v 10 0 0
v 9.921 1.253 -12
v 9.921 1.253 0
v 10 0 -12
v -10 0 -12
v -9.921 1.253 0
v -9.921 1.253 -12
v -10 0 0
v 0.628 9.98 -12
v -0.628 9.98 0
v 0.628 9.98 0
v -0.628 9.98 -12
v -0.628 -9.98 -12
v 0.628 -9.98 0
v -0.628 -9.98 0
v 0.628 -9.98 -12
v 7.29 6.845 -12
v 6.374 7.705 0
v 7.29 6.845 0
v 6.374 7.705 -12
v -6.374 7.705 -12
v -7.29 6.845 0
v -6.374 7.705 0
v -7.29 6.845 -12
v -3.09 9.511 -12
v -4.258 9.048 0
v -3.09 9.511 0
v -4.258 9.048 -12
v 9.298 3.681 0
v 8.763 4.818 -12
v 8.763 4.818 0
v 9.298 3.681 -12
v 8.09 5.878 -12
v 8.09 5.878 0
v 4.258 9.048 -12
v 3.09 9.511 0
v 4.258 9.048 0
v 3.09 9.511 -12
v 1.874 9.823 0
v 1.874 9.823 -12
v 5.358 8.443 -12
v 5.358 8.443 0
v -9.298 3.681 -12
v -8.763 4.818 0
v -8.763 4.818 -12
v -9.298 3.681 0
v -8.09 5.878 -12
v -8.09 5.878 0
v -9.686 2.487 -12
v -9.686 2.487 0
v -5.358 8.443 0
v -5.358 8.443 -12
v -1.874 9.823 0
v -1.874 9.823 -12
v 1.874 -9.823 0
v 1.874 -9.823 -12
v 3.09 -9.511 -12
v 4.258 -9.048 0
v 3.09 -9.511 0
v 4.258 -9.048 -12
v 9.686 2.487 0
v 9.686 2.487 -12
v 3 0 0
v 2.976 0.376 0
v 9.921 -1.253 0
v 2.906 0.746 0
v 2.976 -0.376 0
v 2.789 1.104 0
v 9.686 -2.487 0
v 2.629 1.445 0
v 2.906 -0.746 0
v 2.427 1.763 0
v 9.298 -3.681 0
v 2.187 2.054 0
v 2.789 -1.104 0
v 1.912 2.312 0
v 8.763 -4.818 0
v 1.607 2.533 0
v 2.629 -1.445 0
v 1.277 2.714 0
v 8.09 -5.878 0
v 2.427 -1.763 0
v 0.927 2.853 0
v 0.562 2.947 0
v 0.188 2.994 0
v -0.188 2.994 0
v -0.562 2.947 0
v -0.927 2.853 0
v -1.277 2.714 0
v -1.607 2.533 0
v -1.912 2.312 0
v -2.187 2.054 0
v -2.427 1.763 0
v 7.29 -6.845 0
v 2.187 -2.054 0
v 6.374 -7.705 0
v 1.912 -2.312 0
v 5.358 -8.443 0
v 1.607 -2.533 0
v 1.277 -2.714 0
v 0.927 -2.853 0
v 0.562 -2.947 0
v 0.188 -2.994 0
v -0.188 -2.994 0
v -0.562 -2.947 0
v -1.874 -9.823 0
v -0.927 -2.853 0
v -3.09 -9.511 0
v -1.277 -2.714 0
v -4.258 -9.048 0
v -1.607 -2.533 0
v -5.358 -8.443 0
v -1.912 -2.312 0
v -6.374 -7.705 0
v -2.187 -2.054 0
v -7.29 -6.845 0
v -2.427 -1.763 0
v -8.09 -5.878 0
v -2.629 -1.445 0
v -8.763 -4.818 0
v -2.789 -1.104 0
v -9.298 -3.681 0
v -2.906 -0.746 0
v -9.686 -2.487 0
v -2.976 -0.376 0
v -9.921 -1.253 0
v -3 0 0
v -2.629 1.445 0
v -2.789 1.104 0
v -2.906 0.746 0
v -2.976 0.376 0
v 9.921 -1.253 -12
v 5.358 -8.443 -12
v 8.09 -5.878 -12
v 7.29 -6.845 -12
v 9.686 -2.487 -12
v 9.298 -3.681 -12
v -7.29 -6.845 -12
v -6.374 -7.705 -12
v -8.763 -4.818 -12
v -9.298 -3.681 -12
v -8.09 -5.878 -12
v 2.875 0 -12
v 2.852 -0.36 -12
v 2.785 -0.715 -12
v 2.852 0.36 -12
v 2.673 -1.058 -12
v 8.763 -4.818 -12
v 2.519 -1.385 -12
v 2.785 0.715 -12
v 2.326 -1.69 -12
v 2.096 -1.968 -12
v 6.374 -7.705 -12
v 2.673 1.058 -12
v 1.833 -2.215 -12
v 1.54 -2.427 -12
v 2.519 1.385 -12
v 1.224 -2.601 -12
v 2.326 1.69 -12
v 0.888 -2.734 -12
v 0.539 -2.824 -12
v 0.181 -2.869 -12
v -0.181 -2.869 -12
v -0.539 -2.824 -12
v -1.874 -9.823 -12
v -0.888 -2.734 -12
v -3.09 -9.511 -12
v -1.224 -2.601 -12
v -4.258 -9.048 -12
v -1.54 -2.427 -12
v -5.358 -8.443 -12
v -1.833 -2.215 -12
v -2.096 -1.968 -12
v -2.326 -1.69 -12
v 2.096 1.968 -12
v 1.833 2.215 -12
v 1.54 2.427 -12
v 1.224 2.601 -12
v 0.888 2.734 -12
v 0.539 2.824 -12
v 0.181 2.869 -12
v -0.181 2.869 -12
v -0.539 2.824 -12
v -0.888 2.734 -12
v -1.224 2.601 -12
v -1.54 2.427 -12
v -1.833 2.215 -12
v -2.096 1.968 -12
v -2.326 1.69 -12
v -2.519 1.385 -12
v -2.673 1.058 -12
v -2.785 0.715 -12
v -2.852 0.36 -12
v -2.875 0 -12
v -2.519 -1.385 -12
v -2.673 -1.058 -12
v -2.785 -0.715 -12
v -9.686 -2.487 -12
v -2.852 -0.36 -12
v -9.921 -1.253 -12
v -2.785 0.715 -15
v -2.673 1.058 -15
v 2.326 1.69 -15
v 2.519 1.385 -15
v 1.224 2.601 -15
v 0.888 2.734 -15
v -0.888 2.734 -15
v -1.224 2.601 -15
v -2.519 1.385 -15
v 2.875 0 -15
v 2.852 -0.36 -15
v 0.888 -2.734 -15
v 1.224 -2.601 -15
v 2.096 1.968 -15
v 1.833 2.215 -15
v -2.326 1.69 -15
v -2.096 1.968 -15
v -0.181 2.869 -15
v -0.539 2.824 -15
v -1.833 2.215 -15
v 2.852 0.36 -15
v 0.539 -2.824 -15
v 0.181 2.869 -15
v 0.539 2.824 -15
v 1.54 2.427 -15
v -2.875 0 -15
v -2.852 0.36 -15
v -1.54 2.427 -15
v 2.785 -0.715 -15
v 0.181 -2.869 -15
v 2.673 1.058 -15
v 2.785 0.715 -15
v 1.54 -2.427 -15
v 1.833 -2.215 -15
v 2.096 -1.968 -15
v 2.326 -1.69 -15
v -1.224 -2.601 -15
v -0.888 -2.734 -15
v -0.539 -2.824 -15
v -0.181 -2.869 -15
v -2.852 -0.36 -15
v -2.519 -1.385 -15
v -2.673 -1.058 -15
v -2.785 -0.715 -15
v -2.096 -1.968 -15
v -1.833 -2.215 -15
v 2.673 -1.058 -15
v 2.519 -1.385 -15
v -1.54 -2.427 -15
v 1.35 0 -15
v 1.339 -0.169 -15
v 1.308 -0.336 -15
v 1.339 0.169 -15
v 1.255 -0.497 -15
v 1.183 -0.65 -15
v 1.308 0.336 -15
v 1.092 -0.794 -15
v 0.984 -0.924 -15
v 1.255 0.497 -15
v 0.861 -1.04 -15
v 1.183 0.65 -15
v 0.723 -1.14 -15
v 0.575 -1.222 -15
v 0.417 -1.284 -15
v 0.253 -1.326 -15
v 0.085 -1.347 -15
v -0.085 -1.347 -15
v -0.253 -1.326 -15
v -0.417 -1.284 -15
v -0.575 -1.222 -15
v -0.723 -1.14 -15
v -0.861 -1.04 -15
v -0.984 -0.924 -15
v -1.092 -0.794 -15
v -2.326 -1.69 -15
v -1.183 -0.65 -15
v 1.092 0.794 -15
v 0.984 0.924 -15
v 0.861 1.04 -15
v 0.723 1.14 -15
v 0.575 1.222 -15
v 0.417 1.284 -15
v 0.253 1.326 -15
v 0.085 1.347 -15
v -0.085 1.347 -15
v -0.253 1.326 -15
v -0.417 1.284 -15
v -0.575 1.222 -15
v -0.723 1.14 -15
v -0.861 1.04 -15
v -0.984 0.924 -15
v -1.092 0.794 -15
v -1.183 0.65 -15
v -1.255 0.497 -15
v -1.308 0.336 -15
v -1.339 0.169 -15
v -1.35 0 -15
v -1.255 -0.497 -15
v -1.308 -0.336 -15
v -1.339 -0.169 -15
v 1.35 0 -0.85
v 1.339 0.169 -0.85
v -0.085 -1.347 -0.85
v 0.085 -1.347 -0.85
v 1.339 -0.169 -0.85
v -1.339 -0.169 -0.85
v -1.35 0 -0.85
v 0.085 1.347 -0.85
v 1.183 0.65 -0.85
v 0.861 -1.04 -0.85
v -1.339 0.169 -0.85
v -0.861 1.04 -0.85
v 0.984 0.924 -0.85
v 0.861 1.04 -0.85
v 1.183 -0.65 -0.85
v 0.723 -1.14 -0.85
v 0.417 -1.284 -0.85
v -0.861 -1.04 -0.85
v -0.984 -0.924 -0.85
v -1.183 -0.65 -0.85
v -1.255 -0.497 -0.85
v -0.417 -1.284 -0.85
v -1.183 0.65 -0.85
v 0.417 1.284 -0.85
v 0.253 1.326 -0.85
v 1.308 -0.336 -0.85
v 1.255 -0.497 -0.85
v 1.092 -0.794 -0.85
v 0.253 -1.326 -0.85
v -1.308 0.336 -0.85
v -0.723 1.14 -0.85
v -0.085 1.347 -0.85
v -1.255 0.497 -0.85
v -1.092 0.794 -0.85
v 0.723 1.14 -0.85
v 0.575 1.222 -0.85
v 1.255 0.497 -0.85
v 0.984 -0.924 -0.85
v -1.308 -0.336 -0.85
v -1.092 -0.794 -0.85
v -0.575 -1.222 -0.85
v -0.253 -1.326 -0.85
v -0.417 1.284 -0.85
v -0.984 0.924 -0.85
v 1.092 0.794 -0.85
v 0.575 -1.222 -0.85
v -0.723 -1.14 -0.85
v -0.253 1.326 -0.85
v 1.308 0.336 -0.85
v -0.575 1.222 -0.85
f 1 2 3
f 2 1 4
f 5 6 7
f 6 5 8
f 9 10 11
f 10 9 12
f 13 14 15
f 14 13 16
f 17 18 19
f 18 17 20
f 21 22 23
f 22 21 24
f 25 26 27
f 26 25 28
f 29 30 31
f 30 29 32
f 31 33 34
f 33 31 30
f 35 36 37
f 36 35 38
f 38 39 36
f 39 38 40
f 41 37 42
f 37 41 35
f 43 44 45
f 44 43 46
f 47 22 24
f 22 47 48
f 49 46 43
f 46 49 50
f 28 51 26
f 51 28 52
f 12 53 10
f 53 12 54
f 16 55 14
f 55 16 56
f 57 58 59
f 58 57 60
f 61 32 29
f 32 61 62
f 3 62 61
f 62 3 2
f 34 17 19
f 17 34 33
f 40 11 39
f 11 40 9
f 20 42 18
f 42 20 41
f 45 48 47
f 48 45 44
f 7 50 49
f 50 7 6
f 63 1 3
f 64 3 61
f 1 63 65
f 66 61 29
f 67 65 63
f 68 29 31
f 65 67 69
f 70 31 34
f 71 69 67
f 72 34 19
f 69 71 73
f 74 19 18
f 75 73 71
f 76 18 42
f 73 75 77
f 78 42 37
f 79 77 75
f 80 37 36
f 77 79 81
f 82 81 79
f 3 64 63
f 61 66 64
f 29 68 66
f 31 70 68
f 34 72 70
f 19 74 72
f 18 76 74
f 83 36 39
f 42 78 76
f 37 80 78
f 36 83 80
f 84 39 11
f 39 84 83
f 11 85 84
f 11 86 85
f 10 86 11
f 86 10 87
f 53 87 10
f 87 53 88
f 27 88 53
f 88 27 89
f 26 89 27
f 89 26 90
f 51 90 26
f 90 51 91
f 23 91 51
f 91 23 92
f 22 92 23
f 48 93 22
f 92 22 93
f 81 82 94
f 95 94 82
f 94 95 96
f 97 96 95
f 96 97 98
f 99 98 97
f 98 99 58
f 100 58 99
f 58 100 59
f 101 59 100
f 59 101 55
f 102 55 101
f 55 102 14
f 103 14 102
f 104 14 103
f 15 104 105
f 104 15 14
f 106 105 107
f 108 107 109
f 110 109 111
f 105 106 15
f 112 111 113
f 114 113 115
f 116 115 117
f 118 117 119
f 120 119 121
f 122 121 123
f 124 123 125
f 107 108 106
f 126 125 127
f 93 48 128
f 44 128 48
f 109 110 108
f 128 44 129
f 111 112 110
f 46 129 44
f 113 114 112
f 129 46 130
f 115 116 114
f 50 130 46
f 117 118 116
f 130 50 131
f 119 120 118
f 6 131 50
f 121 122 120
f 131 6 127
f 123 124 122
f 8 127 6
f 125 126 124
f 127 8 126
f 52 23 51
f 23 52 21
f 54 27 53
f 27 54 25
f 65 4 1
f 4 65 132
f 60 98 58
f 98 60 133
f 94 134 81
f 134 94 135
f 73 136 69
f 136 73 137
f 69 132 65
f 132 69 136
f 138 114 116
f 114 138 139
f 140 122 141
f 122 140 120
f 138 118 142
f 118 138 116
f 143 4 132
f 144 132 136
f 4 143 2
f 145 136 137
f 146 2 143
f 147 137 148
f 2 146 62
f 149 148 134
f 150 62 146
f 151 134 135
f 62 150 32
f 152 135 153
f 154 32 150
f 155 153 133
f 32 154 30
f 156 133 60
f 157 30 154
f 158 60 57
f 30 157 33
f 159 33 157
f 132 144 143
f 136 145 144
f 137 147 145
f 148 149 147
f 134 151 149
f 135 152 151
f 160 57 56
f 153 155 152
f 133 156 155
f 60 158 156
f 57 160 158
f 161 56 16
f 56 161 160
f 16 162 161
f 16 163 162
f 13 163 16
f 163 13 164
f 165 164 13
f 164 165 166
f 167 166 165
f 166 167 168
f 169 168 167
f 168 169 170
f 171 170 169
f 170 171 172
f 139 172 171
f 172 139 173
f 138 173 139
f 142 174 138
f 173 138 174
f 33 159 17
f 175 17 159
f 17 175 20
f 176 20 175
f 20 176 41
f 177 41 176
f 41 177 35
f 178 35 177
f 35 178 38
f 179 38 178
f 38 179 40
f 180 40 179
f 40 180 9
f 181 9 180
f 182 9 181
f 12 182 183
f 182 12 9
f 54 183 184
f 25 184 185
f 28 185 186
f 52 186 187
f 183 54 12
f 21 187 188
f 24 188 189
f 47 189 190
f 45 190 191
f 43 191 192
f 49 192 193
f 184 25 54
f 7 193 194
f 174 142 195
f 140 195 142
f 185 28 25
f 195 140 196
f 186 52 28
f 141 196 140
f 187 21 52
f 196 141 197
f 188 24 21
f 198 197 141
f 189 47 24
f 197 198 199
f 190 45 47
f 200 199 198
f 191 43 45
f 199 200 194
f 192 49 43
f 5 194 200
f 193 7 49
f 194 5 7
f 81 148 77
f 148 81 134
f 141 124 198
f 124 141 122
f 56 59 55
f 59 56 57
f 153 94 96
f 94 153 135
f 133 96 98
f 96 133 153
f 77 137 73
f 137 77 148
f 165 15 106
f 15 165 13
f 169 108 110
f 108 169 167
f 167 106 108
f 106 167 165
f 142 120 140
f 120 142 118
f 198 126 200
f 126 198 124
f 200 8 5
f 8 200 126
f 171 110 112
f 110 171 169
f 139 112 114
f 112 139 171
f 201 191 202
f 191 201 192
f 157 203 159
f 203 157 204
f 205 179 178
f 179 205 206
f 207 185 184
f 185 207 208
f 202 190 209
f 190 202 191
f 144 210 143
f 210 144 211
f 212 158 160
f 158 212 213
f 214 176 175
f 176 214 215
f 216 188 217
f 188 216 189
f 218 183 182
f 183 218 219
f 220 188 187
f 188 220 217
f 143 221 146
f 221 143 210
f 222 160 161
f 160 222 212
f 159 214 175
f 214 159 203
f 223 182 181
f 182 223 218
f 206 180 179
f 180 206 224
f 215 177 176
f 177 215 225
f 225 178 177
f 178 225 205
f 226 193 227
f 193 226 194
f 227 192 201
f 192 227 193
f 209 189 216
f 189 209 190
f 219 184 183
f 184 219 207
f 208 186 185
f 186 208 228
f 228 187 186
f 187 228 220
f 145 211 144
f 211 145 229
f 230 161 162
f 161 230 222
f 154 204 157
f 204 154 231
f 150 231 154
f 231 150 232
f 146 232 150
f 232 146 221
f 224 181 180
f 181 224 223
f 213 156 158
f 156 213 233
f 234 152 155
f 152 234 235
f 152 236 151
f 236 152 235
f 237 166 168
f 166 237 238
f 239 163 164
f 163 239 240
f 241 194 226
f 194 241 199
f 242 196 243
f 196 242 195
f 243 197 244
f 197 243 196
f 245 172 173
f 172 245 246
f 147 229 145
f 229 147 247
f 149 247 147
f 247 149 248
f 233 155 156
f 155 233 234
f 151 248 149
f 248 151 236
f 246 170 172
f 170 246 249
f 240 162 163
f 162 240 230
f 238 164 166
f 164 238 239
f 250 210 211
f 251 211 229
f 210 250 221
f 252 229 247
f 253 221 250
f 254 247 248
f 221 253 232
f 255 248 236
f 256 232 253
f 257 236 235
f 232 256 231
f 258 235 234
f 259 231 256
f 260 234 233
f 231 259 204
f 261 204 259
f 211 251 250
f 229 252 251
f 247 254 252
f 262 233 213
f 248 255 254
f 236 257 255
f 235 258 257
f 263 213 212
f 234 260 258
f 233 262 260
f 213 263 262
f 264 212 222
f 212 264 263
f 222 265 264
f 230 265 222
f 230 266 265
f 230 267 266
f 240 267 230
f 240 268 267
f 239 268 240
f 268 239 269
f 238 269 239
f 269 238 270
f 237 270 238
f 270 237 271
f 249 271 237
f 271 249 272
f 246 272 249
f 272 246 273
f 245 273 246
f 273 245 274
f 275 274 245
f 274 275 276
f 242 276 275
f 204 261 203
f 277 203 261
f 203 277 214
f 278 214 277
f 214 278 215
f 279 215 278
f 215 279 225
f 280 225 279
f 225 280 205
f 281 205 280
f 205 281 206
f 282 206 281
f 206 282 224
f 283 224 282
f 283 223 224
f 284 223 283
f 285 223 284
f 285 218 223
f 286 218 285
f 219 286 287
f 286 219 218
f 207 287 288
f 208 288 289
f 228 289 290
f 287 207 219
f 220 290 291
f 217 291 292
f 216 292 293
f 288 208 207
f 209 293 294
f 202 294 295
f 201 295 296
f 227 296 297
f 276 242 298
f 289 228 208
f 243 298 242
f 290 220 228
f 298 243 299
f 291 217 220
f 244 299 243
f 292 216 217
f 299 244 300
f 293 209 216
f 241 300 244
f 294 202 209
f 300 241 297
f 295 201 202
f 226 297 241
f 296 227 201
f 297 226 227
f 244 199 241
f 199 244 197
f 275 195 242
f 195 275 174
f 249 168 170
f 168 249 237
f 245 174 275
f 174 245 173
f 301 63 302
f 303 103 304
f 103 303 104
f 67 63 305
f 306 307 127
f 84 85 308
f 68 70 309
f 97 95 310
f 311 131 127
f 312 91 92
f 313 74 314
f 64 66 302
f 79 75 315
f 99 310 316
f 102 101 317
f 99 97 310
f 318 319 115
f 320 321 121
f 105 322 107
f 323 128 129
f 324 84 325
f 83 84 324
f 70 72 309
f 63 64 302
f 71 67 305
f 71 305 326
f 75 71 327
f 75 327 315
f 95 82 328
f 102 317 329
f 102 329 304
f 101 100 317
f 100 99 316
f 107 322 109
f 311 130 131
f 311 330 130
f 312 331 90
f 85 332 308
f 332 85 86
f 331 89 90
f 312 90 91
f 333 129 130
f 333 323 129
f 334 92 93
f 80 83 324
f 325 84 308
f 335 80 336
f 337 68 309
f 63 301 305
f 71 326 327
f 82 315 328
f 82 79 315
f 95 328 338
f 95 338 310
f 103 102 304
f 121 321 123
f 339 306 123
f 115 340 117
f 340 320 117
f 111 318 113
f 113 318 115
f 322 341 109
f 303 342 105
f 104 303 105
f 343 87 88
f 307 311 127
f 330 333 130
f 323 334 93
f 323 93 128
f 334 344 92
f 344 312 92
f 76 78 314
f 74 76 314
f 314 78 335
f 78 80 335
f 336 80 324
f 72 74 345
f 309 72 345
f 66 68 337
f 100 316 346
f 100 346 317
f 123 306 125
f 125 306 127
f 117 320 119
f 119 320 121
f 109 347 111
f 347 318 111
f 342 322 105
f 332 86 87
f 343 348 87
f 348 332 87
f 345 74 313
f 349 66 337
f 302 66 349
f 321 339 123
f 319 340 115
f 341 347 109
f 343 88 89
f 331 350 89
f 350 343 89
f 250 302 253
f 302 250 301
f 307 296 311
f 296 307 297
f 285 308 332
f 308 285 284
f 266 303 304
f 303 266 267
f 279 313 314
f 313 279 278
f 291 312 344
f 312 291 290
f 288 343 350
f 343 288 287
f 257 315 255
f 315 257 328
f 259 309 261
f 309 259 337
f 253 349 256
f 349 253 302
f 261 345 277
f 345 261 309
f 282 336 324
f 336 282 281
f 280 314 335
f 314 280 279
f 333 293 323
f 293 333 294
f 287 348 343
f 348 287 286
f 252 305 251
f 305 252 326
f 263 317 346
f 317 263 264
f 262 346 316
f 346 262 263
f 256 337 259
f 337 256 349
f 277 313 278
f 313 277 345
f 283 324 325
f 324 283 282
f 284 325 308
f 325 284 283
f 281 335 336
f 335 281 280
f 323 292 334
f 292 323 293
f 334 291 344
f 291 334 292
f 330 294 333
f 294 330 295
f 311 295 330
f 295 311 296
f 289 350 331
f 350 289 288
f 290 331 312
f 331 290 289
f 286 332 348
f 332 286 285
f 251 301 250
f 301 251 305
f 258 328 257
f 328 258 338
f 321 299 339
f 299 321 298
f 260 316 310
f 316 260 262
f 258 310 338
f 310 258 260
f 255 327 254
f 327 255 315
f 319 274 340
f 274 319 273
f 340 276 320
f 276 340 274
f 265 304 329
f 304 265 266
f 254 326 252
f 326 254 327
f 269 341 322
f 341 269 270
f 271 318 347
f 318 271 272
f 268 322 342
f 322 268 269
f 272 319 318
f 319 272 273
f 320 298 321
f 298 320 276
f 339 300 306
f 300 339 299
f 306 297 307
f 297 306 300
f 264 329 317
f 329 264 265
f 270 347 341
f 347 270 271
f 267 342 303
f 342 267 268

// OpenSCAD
$fn = 50;

difference() {
	union() {
		translate(v = [0, 0, -12.0]) {
			cylinder(h = 12, r = 10.0);
		}
		#translate(v = [0, 0, -15.0]) {
			cylinder(h = 15, r = 2.875);
		}
	}
	union() {
		translate(v = [0, 0, 0]) {
			rotate(a = [0, 0, 0]) {
				difference() {
					union() {
						translate(v = [0, 0, -15.0]) {
							cylinder(h = 15, r = 1.0);
						}
						translate(v = [0, 0, -0.85]) {
							cylinder(h = 0.85, r1 = 1.35, r2 = 3.0);
						}
						translate(v = [0, 0, -15.0]) {
							cylinder(h = 15, r = 1.35);
						}
						translate(v = [0, 0, -15.0]) {
							cylinder(h = 15, r = 1.0);
						}
					}
					union();
				}
			}
		}
	}
}
